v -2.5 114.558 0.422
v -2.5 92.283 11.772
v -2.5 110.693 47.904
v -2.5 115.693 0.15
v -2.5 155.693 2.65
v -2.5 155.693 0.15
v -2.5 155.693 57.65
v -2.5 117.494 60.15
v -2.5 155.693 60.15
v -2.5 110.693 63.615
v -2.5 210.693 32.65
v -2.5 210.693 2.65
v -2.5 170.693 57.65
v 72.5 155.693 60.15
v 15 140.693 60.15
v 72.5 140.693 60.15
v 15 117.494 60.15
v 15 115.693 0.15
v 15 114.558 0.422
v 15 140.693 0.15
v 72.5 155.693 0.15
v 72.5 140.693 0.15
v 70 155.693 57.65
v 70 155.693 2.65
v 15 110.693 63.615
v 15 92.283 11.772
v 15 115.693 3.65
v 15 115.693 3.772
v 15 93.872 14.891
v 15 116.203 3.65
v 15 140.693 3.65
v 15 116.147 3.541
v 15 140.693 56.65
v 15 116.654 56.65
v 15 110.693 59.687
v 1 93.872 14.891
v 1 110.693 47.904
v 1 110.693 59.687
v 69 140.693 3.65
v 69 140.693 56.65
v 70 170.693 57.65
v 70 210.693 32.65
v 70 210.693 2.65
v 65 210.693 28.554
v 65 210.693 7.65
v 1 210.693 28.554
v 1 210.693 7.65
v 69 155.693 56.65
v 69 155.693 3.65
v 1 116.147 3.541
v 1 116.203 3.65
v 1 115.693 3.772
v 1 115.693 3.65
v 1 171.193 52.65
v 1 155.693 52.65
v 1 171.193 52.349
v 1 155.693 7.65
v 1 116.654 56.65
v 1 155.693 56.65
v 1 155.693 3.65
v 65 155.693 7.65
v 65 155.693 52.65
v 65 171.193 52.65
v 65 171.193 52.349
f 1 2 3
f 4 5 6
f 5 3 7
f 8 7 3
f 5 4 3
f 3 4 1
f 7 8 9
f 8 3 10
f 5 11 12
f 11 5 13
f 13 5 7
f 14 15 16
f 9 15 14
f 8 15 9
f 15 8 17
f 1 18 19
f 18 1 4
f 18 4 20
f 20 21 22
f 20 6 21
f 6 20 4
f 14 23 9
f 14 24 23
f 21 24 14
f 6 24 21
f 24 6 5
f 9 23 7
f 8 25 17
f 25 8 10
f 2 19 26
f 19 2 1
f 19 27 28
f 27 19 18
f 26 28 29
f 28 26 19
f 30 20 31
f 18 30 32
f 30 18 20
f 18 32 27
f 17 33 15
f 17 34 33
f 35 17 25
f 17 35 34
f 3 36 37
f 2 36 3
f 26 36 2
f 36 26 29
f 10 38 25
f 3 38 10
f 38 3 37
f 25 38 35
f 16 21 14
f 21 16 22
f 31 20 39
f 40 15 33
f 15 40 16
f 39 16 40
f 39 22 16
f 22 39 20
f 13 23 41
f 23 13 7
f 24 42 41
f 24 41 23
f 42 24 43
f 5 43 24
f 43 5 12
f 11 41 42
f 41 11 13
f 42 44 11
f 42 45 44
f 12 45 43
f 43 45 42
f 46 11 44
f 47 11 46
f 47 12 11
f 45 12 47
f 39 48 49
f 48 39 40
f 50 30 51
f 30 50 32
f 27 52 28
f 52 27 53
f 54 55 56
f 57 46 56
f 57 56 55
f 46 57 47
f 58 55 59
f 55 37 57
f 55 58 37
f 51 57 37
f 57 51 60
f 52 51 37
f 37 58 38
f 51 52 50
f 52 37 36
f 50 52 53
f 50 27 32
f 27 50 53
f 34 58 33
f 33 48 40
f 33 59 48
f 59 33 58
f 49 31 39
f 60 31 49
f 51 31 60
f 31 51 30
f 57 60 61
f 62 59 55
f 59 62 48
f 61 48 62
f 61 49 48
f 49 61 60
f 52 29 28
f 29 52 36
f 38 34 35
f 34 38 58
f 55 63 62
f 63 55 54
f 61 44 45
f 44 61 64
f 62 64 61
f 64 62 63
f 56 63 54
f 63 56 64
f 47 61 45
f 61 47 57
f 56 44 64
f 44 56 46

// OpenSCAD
/*
  Aquarium Refill Hose Holder - Part 3: Outlet Extension
  ------------------------------------------------------
  Slip-on sleeve for the end of the glass-mount tunnel (Part 1). It:
    - closes the open side of the tunnel near its end (side shell with
      15 mm overlap tabs on the upper and lower plate),
    - grips the tunnel end with a full collar on three sides,
    - extends the water channel flush with the inside of the tunnel, and
    - lowers the channel ceiling towards the outlet, so the water stream
      is directed downwards into the aquarium instead of splashing out.

  Self-contained: everything this part needs is in this file.
  Values marked [SHARED] describe the tunnel of the glass mount and must
  stay identical in 1_glass_mount.scad; assembly.scad checks this and stops
  with an error if they differ.

  The grey ghost of the tunnel end is shown in preview (F5) only and is not
  part of the exported STL (F6).
*/

/* [Sleeve] */
// Fit on the printed tunnel, per side. Positive = looser, negative = tighter.
// Tuned with test prints (+1.0 -> -1.0); adjust for your printer.
fit_clearance        = -1;
shell_thickness      = 3.5;  // Wall thickness of the sleeve
overlap              = 15;   // Side tabs and end collar overlap onto the tunnel
slope_overlap        = 25;   // How far the side shell reaches back onto the slope

/* [Outlet] */
extension_length     = 55;   // Total length past the tunnel end
straight_before_drop = 15;   // Straight run before the ceiling starts to drop
outlet_drop          = 25;   // How much the ceiling drops at the outlet

show_tunnel_preview  = true; // Ghost of the tunnel end in F5 preview

/* [Tunnel of the glass mount - SHARED, copy from 1_glass_mount.scad] */
glass_thickness       = 12;
clip_width            = 70;
clip_height           = 50;
wall_thickness        = 5;
tilt_angle            = 27;
plate_width           = 70;
plate_length          = 75;
slope_extension       = 80;
straight_length       = 40;
tunnel_height         = 50;
lower_plate_thickness = 5;
upper_plate_thickness = 5;

/* [Hidden] */
$fn = 64;

// ---------------------------------------------------------------------------
// Derived geometry (same formulas as in 1_glass_mount.scad)
// ---------------------------------------------------------------------------
clip_depth    = glass_thickness + 2 * wall_thickness;
lower_plate_z = clip_height + (clip_depth / 2) * sin(tilt_angle) + 1;
upper_plate_z = lower_plate_z + tunnel_height;
plate_x0      = clip_width - plate_width;

slope_end_local  = plate_length / 2 + slope_extension;
straight_start_y = clip_depth / 2 + slope_end_local * cos(tilt_angle);
slope_drop       = -slope_end_local * sin(tilt_angle);
tunnel_end_y     = straight_start_y + straight_length;

straight_bottom_z     = lower_plate_z + slope_drop;
straight_top_z        = upper_plate_z + slope_drop + upper_plate_thickness;
straight_outer_height = straight_top_z - straight_bottom_z;

channel_bottom_z = straight_bottom_z + lower_plate_thickness;
channel_height   = straight_top_z - upper_plate_thickness - channel_bottom_z;
channel_width    = plate_width - wall_thickness;

// ---------------------------------------------------------------------------
// Part
// ---------------------------------------------------------------------------
module outlet_extension() {
    c = fit_clearance;
    s = fit_clearance + shell_thickness;    // Outer offset of the sleeve
    socket_from = slope_end_local - slope_overlap - 5;

    translate([plate_x0, 0, 0])
    difference() {
        union() {
            // 1. Side shell on the open side of the tunnel with overlap tabs
            //    onto both plates, along the sloped and the straight section
            intersection() {
                tunnel_envelope(0, plate_width, socket_from, grow = s);

                // Limit to the open side wall + overlap (X <= overlap) and
                // cut square to the slope where the shell begins
                union() {
                    tilted_frame(-(s + 1), lower_plate_z)
                        translate([0, slope_end_local - slope_overlap, -50])
                            cube([overlap + s + 1, slope_overlap + 10, 200]);

                    translate([-(s + 1), straight_start_y - 5, -50])
                        cube([overlap + s + 1, straight_length + 5, 200]);
                }
            }

            // 2. Full collar around the tunnel end
            translate([-s, tunnel_end_y - overlap, straight_bottom_z - s])
                cube([plate_width + 2 * s, overlap, straight_outer_height + 2 * s]);

            // 3. Channel extension - outer faces flush with the tunnel
            translate([-s, tunnel_end_y - 0.5, straight_bottom_z])
                cube([plate_width + s, straight_before_drop + 0.5, straight_outer_height]);

            hull() {
                translate([-s, tunnel_end_y + straight_before_drop - 0.5, straight_bottom_z])
                    cube([plate_width + s, 0.5, straight_outer_height]);

                translate([-s, tunnel_end_y + extension_length - 0.5, straight_bottom_z])
                    cube([plate_width + s, 0.5, straight_outer_height - outlet_drop]);
            }
        }

        // Socket for the tunnel end
        tunnel_envelope(0, plate_width, socket_from, grow = c);

        // Water channel - same cross-section as the inside of the tunnel,
        // so the floor is perfectly flush (no step)
        translate([-c, tunnel_end_y - 1, channel_bottom_z])
            cube([channel_width + c, straight_before_drop + 1.5, channel_height]);

        hull() {
            translate([-c, tunnel_end_y + straight_before_drop - 0.5, channel_bottom_z])
                cube([channel_width + c, 0.5, channel_height]);

            translate([-c, tunnel_end_y + extension_length + 1, channel_bottom_z])
                cube([channel_width + c, 0.5, channel_height - outlet_drop]);
        }
    }
}

// ---------------------------------------------------------------------------
// Tunnel geometry (same as in 1_glass_mount.scad)
// ---------------------------------------------------------------------------
// Origin on the hinge line (Y = clip_depth / 2), local +Y down the slope.
module tilted_frame(x, z) {
    translate([x, clip_depth / 2, z])
        rotate([-tilt_angle, 0, 0])
            children();
}

// Solid outer envelope of the tunnel (both plates and the space between
// them) for X in [x, x + width], from the slope coordinate y_from to the end.
//   grow - uniform offset in X and Z (positive = larger)
module tunnel_envelope(x, width, y_from, grow = 0) {
    gx = x - grow;
    gw = width + 2 * grow;

    hull() {
        tilted_frame(gx, lower_plate_z)
            translate([0, y_from, -grow])
                cube([gw, slope_end_local - y_from, lower_plate_thickness + 2 * grow]);
        tilted_frame(gx, upper_plate_z)
            translate([0, y_from, -grow])
                cube([gw, slope_end_local - y_from, upper_plate_thickness + 2 * grow]);
    }

    if (straight_length > 0) {
        hull() {
            tilted_frame(gx, lower_plate_z)
                translate([0, slope_end_local - 0.5, -grow])
                    cube([gw, 0.5, lower_plate_thickness + 2 * grow]);
            tilted_frame(gx, upper_plate_z)
                translate([0, slope_end_local - 0.5, -grow])
                    cube([gw, 0.5, upper_plate_thickness + 2 * grow]);
            translate([gx, straight_start_y, straight_bottom_z - grow])
                cube([gw, 0.5, straight_outer_height + 2 * grow]);
        }

        translate([gx, straight_start_y, straight_bottom_z - grow])
            cube([gw, straight_length, straight_outer_height + 2 * grow]);
    }
}

// ---------------------------------------------------------------------------
// Interface for assembly.scad (do not edit)
// ---------------------------------------------------------------------------
function extension_tunnel_values() = [glass_thickness, clip_width, clip_height, wall_thickness,
    tilt_angle, plate_width, plate_length, slope_extension, straight_length,
    tunnel_height, lower_plate_thickness, upper_plate_thickness];

outlet_extension();

// Preview only (F5): outline of the tunnel end the sleeve slides onto
if (show_tunnel_preview)
    %tunnel_envelope(plate_x0, plate_width, slope_end_local - slope_overlap - 15);
